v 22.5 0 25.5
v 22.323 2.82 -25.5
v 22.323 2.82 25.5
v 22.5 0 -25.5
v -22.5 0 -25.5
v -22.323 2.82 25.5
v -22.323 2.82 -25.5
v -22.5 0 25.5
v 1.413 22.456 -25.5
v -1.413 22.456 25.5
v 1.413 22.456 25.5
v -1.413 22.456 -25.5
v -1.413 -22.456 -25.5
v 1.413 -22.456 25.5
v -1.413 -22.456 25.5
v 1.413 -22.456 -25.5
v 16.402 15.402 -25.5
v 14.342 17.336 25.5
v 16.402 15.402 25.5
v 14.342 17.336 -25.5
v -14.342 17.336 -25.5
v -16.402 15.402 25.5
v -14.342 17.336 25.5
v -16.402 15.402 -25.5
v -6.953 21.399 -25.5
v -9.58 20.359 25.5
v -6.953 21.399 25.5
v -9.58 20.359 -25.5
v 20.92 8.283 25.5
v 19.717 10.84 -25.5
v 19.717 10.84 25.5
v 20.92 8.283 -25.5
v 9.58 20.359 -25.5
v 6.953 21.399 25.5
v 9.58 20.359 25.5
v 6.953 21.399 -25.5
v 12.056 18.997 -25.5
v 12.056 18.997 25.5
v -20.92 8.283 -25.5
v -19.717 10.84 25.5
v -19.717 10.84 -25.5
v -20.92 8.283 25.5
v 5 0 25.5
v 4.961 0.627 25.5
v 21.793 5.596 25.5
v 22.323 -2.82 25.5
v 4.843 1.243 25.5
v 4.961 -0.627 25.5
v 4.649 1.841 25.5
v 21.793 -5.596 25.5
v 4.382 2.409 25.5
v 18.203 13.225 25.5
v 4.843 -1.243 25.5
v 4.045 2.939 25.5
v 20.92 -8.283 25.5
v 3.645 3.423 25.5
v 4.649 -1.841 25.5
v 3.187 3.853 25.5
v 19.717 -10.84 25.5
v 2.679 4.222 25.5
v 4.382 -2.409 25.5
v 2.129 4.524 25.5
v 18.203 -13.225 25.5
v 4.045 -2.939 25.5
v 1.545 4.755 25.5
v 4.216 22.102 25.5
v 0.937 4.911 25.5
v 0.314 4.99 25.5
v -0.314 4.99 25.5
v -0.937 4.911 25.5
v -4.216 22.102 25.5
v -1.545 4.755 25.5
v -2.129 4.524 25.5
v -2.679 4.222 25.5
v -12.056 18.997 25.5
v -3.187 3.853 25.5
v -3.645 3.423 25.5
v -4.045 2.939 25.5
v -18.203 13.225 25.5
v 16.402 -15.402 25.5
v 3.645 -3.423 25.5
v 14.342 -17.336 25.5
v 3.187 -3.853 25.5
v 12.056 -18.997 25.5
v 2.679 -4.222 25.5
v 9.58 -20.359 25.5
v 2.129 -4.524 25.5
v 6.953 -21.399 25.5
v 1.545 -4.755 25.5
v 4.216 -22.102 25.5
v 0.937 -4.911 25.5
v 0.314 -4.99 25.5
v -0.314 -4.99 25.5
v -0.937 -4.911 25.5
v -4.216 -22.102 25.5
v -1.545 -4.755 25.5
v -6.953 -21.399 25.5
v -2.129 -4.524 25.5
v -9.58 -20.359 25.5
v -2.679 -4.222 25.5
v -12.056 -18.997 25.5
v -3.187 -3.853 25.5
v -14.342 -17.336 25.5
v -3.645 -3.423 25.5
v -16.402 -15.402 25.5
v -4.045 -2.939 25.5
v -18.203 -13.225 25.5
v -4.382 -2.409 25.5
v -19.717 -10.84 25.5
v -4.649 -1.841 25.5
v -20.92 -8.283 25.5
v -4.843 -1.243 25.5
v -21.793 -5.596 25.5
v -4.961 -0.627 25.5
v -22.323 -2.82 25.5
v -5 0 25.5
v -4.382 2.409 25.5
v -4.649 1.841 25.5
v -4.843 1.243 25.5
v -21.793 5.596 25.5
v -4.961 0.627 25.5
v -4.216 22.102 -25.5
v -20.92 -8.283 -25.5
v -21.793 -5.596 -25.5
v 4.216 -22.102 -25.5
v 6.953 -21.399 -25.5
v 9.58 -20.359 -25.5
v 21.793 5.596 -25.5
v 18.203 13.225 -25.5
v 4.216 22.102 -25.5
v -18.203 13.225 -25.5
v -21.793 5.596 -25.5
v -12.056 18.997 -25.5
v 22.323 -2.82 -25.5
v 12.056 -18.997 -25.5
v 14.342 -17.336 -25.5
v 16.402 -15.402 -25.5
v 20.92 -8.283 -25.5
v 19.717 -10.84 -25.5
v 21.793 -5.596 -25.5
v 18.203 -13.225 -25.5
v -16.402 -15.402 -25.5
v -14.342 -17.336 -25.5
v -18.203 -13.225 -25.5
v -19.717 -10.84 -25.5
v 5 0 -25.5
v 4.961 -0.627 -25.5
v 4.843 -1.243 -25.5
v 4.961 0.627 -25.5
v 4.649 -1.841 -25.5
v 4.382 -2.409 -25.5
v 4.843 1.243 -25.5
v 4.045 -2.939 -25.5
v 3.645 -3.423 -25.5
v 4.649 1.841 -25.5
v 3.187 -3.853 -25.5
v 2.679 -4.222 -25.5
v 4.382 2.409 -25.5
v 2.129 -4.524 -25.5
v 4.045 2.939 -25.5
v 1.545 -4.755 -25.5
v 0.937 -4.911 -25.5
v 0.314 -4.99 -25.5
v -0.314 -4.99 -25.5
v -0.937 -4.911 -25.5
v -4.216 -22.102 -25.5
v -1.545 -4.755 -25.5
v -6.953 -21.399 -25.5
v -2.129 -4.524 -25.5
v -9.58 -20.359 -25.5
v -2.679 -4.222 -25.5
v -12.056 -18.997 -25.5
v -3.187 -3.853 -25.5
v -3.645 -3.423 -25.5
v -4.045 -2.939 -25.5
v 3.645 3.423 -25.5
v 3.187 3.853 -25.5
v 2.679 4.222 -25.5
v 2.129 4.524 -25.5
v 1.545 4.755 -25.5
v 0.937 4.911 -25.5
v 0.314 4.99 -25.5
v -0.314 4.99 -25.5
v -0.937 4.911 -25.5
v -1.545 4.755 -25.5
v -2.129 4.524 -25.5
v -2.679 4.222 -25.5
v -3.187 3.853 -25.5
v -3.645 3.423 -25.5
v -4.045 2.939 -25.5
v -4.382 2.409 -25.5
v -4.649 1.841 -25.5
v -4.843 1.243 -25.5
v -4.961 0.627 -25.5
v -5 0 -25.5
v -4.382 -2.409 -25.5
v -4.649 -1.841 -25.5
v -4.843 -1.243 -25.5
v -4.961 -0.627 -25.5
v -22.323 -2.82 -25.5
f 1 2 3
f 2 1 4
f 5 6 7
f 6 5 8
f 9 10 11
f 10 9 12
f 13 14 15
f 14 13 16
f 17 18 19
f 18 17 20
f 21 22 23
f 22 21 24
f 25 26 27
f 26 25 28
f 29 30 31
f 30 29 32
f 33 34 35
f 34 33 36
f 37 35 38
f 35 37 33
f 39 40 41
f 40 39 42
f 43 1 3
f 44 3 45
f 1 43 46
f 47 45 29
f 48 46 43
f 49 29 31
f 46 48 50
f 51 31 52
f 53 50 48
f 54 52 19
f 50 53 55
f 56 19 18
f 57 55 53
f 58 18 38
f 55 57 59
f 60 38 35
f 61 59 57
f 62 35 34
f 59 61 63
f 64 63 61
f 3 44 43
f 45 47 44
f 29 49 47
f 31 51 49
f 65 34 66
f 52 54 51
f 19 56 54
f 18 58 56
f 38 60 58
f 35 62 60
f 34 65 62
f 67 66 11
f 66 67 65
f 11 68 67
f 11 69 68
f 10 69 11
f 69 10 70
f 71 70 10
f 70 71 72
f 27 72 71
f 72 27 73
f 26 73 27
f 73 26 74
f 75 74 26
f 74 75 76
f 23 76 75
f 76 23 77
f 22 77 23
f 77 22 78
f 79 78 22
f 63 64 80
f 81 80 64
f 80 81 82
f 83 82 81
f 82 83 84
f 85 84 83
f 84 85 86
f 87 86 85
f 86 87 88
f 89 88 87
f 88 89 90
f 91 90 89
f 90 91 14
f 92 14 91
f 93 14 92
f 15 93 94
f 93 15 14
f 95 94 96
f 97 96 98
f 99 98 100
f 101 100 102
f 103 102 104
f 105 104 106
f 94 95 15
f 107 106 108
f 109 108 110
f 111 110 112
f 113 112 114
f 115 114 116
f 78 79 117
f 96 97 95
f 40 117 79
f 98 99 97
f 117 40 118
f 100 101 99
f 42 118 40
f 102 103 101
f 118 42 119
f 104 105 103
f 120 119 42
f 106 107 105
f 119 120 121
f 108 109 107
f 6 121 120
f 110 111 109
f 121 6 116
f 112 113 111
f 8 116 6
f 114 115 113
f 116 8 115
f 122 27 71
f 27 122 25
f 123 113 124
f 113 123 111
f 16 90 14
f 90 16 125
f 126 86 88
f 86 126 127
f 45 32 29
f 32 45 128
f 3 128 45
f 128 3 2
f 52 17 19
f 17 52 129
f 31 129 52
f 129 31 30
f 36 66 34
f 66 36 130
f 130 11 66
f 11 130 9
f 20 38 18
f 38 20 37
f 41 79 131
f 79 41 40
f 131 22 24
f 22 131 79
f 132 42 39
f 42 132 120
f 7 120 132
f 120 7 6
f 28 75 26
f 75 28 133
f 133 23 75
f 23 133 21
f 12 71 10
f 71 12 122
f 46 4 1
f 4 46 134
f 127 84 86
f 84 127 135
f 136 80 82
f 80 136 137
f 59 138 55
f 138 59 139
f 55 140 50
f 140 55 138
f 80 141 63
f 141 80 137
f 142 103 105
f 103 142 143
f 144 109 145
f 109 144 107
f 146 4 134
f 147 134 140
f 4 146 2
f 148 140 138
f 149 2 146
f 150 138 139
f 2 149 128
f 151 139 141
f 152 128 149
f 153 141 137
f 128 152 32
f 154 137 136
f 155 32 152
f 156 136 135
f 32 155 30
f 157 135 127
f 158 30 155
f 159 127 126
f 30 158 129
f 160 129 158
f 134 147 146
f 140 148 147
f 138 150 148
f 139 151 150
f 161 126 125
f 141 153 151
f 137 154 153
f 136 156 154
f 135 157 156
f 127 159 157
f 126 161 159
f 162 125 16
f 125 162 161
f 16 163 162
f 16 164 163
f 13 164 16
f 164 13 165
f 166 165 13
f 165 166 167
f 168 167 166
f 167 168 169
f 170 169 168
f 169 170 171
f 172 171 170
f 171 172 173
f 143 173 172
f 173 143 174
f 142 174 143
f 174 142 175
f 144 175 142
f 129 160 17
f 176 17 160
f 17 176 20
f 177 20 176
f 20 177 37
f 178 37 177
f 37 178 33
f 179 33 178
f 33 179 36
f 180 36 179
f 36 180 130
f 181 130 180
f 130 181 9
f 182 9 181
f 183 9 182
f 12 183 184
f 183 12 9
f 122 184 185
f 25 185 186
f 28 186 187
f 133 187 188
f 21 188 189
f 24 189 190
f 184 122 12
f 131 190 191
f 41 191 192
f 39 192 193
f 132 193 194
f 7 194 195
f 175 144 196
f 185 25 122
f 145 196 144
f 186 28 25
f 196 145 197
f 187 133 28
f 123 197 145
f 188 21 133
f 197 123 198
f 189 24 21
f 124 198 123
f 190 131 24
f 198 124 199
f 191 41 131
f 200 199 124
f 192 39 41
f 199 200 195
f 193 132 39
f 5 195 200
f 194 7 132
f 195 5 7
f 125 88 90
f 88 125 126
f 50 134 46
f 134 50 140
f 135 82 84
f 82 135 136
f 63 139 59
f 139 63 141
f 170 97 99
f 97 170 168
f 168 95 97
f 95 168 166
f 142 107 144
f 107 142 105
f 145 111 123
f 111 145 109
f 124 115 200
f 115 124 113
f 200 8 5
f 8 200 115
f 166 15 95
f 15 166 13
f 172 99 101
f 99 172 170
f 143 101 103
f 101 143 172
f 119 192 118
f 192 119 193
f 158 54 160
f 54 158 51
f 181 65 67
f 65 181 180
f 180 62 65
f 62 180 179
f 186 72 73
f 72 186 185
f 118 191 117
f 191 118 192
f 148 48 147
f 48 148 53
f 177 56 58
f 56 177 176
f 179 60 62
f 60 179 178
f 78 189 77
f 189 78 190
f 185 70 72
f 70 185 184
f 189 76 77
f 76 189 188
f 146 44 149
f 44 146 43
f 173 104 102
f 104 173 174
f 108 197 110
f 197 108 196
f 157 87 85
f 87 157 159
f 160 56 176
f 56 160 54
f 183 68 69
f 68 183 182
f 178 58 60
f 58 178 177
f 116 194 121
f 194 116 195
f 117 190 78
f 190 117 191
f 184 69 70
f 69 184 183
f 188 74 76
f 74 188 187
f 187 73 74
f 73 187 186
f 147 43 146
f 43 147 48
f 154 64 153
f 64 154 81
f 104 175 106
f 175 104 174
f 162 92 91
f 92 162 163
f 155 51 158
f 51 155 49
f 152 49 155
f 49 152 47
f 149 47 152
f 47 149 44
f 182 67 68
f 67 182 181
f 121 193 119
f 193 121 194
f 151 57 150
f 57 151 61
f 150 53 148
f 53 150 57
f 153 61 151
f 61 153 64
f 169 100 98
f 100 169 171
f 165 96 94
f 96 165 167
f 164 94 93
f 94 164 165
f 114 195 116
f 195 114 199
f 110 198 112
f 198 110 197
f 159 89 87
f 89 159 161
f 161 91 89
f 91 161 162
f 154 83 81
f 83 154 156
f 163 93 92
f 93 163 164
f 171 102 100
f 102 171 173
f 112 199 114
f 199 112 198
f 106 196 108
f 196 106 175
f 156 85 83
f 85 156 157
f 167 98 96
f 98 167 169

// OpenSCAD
$fn = 50;


difference() {
	union() {
		translate(v = [0, 0, -25.5000000000]) {
			cylinder(h = 51, r = 22.5000000000);
		}
	}
	union() {
		translate(v = [0, 0, -100.0000000000]) {
			cylinder(h = 200, r = 5);
		}
	}
}
